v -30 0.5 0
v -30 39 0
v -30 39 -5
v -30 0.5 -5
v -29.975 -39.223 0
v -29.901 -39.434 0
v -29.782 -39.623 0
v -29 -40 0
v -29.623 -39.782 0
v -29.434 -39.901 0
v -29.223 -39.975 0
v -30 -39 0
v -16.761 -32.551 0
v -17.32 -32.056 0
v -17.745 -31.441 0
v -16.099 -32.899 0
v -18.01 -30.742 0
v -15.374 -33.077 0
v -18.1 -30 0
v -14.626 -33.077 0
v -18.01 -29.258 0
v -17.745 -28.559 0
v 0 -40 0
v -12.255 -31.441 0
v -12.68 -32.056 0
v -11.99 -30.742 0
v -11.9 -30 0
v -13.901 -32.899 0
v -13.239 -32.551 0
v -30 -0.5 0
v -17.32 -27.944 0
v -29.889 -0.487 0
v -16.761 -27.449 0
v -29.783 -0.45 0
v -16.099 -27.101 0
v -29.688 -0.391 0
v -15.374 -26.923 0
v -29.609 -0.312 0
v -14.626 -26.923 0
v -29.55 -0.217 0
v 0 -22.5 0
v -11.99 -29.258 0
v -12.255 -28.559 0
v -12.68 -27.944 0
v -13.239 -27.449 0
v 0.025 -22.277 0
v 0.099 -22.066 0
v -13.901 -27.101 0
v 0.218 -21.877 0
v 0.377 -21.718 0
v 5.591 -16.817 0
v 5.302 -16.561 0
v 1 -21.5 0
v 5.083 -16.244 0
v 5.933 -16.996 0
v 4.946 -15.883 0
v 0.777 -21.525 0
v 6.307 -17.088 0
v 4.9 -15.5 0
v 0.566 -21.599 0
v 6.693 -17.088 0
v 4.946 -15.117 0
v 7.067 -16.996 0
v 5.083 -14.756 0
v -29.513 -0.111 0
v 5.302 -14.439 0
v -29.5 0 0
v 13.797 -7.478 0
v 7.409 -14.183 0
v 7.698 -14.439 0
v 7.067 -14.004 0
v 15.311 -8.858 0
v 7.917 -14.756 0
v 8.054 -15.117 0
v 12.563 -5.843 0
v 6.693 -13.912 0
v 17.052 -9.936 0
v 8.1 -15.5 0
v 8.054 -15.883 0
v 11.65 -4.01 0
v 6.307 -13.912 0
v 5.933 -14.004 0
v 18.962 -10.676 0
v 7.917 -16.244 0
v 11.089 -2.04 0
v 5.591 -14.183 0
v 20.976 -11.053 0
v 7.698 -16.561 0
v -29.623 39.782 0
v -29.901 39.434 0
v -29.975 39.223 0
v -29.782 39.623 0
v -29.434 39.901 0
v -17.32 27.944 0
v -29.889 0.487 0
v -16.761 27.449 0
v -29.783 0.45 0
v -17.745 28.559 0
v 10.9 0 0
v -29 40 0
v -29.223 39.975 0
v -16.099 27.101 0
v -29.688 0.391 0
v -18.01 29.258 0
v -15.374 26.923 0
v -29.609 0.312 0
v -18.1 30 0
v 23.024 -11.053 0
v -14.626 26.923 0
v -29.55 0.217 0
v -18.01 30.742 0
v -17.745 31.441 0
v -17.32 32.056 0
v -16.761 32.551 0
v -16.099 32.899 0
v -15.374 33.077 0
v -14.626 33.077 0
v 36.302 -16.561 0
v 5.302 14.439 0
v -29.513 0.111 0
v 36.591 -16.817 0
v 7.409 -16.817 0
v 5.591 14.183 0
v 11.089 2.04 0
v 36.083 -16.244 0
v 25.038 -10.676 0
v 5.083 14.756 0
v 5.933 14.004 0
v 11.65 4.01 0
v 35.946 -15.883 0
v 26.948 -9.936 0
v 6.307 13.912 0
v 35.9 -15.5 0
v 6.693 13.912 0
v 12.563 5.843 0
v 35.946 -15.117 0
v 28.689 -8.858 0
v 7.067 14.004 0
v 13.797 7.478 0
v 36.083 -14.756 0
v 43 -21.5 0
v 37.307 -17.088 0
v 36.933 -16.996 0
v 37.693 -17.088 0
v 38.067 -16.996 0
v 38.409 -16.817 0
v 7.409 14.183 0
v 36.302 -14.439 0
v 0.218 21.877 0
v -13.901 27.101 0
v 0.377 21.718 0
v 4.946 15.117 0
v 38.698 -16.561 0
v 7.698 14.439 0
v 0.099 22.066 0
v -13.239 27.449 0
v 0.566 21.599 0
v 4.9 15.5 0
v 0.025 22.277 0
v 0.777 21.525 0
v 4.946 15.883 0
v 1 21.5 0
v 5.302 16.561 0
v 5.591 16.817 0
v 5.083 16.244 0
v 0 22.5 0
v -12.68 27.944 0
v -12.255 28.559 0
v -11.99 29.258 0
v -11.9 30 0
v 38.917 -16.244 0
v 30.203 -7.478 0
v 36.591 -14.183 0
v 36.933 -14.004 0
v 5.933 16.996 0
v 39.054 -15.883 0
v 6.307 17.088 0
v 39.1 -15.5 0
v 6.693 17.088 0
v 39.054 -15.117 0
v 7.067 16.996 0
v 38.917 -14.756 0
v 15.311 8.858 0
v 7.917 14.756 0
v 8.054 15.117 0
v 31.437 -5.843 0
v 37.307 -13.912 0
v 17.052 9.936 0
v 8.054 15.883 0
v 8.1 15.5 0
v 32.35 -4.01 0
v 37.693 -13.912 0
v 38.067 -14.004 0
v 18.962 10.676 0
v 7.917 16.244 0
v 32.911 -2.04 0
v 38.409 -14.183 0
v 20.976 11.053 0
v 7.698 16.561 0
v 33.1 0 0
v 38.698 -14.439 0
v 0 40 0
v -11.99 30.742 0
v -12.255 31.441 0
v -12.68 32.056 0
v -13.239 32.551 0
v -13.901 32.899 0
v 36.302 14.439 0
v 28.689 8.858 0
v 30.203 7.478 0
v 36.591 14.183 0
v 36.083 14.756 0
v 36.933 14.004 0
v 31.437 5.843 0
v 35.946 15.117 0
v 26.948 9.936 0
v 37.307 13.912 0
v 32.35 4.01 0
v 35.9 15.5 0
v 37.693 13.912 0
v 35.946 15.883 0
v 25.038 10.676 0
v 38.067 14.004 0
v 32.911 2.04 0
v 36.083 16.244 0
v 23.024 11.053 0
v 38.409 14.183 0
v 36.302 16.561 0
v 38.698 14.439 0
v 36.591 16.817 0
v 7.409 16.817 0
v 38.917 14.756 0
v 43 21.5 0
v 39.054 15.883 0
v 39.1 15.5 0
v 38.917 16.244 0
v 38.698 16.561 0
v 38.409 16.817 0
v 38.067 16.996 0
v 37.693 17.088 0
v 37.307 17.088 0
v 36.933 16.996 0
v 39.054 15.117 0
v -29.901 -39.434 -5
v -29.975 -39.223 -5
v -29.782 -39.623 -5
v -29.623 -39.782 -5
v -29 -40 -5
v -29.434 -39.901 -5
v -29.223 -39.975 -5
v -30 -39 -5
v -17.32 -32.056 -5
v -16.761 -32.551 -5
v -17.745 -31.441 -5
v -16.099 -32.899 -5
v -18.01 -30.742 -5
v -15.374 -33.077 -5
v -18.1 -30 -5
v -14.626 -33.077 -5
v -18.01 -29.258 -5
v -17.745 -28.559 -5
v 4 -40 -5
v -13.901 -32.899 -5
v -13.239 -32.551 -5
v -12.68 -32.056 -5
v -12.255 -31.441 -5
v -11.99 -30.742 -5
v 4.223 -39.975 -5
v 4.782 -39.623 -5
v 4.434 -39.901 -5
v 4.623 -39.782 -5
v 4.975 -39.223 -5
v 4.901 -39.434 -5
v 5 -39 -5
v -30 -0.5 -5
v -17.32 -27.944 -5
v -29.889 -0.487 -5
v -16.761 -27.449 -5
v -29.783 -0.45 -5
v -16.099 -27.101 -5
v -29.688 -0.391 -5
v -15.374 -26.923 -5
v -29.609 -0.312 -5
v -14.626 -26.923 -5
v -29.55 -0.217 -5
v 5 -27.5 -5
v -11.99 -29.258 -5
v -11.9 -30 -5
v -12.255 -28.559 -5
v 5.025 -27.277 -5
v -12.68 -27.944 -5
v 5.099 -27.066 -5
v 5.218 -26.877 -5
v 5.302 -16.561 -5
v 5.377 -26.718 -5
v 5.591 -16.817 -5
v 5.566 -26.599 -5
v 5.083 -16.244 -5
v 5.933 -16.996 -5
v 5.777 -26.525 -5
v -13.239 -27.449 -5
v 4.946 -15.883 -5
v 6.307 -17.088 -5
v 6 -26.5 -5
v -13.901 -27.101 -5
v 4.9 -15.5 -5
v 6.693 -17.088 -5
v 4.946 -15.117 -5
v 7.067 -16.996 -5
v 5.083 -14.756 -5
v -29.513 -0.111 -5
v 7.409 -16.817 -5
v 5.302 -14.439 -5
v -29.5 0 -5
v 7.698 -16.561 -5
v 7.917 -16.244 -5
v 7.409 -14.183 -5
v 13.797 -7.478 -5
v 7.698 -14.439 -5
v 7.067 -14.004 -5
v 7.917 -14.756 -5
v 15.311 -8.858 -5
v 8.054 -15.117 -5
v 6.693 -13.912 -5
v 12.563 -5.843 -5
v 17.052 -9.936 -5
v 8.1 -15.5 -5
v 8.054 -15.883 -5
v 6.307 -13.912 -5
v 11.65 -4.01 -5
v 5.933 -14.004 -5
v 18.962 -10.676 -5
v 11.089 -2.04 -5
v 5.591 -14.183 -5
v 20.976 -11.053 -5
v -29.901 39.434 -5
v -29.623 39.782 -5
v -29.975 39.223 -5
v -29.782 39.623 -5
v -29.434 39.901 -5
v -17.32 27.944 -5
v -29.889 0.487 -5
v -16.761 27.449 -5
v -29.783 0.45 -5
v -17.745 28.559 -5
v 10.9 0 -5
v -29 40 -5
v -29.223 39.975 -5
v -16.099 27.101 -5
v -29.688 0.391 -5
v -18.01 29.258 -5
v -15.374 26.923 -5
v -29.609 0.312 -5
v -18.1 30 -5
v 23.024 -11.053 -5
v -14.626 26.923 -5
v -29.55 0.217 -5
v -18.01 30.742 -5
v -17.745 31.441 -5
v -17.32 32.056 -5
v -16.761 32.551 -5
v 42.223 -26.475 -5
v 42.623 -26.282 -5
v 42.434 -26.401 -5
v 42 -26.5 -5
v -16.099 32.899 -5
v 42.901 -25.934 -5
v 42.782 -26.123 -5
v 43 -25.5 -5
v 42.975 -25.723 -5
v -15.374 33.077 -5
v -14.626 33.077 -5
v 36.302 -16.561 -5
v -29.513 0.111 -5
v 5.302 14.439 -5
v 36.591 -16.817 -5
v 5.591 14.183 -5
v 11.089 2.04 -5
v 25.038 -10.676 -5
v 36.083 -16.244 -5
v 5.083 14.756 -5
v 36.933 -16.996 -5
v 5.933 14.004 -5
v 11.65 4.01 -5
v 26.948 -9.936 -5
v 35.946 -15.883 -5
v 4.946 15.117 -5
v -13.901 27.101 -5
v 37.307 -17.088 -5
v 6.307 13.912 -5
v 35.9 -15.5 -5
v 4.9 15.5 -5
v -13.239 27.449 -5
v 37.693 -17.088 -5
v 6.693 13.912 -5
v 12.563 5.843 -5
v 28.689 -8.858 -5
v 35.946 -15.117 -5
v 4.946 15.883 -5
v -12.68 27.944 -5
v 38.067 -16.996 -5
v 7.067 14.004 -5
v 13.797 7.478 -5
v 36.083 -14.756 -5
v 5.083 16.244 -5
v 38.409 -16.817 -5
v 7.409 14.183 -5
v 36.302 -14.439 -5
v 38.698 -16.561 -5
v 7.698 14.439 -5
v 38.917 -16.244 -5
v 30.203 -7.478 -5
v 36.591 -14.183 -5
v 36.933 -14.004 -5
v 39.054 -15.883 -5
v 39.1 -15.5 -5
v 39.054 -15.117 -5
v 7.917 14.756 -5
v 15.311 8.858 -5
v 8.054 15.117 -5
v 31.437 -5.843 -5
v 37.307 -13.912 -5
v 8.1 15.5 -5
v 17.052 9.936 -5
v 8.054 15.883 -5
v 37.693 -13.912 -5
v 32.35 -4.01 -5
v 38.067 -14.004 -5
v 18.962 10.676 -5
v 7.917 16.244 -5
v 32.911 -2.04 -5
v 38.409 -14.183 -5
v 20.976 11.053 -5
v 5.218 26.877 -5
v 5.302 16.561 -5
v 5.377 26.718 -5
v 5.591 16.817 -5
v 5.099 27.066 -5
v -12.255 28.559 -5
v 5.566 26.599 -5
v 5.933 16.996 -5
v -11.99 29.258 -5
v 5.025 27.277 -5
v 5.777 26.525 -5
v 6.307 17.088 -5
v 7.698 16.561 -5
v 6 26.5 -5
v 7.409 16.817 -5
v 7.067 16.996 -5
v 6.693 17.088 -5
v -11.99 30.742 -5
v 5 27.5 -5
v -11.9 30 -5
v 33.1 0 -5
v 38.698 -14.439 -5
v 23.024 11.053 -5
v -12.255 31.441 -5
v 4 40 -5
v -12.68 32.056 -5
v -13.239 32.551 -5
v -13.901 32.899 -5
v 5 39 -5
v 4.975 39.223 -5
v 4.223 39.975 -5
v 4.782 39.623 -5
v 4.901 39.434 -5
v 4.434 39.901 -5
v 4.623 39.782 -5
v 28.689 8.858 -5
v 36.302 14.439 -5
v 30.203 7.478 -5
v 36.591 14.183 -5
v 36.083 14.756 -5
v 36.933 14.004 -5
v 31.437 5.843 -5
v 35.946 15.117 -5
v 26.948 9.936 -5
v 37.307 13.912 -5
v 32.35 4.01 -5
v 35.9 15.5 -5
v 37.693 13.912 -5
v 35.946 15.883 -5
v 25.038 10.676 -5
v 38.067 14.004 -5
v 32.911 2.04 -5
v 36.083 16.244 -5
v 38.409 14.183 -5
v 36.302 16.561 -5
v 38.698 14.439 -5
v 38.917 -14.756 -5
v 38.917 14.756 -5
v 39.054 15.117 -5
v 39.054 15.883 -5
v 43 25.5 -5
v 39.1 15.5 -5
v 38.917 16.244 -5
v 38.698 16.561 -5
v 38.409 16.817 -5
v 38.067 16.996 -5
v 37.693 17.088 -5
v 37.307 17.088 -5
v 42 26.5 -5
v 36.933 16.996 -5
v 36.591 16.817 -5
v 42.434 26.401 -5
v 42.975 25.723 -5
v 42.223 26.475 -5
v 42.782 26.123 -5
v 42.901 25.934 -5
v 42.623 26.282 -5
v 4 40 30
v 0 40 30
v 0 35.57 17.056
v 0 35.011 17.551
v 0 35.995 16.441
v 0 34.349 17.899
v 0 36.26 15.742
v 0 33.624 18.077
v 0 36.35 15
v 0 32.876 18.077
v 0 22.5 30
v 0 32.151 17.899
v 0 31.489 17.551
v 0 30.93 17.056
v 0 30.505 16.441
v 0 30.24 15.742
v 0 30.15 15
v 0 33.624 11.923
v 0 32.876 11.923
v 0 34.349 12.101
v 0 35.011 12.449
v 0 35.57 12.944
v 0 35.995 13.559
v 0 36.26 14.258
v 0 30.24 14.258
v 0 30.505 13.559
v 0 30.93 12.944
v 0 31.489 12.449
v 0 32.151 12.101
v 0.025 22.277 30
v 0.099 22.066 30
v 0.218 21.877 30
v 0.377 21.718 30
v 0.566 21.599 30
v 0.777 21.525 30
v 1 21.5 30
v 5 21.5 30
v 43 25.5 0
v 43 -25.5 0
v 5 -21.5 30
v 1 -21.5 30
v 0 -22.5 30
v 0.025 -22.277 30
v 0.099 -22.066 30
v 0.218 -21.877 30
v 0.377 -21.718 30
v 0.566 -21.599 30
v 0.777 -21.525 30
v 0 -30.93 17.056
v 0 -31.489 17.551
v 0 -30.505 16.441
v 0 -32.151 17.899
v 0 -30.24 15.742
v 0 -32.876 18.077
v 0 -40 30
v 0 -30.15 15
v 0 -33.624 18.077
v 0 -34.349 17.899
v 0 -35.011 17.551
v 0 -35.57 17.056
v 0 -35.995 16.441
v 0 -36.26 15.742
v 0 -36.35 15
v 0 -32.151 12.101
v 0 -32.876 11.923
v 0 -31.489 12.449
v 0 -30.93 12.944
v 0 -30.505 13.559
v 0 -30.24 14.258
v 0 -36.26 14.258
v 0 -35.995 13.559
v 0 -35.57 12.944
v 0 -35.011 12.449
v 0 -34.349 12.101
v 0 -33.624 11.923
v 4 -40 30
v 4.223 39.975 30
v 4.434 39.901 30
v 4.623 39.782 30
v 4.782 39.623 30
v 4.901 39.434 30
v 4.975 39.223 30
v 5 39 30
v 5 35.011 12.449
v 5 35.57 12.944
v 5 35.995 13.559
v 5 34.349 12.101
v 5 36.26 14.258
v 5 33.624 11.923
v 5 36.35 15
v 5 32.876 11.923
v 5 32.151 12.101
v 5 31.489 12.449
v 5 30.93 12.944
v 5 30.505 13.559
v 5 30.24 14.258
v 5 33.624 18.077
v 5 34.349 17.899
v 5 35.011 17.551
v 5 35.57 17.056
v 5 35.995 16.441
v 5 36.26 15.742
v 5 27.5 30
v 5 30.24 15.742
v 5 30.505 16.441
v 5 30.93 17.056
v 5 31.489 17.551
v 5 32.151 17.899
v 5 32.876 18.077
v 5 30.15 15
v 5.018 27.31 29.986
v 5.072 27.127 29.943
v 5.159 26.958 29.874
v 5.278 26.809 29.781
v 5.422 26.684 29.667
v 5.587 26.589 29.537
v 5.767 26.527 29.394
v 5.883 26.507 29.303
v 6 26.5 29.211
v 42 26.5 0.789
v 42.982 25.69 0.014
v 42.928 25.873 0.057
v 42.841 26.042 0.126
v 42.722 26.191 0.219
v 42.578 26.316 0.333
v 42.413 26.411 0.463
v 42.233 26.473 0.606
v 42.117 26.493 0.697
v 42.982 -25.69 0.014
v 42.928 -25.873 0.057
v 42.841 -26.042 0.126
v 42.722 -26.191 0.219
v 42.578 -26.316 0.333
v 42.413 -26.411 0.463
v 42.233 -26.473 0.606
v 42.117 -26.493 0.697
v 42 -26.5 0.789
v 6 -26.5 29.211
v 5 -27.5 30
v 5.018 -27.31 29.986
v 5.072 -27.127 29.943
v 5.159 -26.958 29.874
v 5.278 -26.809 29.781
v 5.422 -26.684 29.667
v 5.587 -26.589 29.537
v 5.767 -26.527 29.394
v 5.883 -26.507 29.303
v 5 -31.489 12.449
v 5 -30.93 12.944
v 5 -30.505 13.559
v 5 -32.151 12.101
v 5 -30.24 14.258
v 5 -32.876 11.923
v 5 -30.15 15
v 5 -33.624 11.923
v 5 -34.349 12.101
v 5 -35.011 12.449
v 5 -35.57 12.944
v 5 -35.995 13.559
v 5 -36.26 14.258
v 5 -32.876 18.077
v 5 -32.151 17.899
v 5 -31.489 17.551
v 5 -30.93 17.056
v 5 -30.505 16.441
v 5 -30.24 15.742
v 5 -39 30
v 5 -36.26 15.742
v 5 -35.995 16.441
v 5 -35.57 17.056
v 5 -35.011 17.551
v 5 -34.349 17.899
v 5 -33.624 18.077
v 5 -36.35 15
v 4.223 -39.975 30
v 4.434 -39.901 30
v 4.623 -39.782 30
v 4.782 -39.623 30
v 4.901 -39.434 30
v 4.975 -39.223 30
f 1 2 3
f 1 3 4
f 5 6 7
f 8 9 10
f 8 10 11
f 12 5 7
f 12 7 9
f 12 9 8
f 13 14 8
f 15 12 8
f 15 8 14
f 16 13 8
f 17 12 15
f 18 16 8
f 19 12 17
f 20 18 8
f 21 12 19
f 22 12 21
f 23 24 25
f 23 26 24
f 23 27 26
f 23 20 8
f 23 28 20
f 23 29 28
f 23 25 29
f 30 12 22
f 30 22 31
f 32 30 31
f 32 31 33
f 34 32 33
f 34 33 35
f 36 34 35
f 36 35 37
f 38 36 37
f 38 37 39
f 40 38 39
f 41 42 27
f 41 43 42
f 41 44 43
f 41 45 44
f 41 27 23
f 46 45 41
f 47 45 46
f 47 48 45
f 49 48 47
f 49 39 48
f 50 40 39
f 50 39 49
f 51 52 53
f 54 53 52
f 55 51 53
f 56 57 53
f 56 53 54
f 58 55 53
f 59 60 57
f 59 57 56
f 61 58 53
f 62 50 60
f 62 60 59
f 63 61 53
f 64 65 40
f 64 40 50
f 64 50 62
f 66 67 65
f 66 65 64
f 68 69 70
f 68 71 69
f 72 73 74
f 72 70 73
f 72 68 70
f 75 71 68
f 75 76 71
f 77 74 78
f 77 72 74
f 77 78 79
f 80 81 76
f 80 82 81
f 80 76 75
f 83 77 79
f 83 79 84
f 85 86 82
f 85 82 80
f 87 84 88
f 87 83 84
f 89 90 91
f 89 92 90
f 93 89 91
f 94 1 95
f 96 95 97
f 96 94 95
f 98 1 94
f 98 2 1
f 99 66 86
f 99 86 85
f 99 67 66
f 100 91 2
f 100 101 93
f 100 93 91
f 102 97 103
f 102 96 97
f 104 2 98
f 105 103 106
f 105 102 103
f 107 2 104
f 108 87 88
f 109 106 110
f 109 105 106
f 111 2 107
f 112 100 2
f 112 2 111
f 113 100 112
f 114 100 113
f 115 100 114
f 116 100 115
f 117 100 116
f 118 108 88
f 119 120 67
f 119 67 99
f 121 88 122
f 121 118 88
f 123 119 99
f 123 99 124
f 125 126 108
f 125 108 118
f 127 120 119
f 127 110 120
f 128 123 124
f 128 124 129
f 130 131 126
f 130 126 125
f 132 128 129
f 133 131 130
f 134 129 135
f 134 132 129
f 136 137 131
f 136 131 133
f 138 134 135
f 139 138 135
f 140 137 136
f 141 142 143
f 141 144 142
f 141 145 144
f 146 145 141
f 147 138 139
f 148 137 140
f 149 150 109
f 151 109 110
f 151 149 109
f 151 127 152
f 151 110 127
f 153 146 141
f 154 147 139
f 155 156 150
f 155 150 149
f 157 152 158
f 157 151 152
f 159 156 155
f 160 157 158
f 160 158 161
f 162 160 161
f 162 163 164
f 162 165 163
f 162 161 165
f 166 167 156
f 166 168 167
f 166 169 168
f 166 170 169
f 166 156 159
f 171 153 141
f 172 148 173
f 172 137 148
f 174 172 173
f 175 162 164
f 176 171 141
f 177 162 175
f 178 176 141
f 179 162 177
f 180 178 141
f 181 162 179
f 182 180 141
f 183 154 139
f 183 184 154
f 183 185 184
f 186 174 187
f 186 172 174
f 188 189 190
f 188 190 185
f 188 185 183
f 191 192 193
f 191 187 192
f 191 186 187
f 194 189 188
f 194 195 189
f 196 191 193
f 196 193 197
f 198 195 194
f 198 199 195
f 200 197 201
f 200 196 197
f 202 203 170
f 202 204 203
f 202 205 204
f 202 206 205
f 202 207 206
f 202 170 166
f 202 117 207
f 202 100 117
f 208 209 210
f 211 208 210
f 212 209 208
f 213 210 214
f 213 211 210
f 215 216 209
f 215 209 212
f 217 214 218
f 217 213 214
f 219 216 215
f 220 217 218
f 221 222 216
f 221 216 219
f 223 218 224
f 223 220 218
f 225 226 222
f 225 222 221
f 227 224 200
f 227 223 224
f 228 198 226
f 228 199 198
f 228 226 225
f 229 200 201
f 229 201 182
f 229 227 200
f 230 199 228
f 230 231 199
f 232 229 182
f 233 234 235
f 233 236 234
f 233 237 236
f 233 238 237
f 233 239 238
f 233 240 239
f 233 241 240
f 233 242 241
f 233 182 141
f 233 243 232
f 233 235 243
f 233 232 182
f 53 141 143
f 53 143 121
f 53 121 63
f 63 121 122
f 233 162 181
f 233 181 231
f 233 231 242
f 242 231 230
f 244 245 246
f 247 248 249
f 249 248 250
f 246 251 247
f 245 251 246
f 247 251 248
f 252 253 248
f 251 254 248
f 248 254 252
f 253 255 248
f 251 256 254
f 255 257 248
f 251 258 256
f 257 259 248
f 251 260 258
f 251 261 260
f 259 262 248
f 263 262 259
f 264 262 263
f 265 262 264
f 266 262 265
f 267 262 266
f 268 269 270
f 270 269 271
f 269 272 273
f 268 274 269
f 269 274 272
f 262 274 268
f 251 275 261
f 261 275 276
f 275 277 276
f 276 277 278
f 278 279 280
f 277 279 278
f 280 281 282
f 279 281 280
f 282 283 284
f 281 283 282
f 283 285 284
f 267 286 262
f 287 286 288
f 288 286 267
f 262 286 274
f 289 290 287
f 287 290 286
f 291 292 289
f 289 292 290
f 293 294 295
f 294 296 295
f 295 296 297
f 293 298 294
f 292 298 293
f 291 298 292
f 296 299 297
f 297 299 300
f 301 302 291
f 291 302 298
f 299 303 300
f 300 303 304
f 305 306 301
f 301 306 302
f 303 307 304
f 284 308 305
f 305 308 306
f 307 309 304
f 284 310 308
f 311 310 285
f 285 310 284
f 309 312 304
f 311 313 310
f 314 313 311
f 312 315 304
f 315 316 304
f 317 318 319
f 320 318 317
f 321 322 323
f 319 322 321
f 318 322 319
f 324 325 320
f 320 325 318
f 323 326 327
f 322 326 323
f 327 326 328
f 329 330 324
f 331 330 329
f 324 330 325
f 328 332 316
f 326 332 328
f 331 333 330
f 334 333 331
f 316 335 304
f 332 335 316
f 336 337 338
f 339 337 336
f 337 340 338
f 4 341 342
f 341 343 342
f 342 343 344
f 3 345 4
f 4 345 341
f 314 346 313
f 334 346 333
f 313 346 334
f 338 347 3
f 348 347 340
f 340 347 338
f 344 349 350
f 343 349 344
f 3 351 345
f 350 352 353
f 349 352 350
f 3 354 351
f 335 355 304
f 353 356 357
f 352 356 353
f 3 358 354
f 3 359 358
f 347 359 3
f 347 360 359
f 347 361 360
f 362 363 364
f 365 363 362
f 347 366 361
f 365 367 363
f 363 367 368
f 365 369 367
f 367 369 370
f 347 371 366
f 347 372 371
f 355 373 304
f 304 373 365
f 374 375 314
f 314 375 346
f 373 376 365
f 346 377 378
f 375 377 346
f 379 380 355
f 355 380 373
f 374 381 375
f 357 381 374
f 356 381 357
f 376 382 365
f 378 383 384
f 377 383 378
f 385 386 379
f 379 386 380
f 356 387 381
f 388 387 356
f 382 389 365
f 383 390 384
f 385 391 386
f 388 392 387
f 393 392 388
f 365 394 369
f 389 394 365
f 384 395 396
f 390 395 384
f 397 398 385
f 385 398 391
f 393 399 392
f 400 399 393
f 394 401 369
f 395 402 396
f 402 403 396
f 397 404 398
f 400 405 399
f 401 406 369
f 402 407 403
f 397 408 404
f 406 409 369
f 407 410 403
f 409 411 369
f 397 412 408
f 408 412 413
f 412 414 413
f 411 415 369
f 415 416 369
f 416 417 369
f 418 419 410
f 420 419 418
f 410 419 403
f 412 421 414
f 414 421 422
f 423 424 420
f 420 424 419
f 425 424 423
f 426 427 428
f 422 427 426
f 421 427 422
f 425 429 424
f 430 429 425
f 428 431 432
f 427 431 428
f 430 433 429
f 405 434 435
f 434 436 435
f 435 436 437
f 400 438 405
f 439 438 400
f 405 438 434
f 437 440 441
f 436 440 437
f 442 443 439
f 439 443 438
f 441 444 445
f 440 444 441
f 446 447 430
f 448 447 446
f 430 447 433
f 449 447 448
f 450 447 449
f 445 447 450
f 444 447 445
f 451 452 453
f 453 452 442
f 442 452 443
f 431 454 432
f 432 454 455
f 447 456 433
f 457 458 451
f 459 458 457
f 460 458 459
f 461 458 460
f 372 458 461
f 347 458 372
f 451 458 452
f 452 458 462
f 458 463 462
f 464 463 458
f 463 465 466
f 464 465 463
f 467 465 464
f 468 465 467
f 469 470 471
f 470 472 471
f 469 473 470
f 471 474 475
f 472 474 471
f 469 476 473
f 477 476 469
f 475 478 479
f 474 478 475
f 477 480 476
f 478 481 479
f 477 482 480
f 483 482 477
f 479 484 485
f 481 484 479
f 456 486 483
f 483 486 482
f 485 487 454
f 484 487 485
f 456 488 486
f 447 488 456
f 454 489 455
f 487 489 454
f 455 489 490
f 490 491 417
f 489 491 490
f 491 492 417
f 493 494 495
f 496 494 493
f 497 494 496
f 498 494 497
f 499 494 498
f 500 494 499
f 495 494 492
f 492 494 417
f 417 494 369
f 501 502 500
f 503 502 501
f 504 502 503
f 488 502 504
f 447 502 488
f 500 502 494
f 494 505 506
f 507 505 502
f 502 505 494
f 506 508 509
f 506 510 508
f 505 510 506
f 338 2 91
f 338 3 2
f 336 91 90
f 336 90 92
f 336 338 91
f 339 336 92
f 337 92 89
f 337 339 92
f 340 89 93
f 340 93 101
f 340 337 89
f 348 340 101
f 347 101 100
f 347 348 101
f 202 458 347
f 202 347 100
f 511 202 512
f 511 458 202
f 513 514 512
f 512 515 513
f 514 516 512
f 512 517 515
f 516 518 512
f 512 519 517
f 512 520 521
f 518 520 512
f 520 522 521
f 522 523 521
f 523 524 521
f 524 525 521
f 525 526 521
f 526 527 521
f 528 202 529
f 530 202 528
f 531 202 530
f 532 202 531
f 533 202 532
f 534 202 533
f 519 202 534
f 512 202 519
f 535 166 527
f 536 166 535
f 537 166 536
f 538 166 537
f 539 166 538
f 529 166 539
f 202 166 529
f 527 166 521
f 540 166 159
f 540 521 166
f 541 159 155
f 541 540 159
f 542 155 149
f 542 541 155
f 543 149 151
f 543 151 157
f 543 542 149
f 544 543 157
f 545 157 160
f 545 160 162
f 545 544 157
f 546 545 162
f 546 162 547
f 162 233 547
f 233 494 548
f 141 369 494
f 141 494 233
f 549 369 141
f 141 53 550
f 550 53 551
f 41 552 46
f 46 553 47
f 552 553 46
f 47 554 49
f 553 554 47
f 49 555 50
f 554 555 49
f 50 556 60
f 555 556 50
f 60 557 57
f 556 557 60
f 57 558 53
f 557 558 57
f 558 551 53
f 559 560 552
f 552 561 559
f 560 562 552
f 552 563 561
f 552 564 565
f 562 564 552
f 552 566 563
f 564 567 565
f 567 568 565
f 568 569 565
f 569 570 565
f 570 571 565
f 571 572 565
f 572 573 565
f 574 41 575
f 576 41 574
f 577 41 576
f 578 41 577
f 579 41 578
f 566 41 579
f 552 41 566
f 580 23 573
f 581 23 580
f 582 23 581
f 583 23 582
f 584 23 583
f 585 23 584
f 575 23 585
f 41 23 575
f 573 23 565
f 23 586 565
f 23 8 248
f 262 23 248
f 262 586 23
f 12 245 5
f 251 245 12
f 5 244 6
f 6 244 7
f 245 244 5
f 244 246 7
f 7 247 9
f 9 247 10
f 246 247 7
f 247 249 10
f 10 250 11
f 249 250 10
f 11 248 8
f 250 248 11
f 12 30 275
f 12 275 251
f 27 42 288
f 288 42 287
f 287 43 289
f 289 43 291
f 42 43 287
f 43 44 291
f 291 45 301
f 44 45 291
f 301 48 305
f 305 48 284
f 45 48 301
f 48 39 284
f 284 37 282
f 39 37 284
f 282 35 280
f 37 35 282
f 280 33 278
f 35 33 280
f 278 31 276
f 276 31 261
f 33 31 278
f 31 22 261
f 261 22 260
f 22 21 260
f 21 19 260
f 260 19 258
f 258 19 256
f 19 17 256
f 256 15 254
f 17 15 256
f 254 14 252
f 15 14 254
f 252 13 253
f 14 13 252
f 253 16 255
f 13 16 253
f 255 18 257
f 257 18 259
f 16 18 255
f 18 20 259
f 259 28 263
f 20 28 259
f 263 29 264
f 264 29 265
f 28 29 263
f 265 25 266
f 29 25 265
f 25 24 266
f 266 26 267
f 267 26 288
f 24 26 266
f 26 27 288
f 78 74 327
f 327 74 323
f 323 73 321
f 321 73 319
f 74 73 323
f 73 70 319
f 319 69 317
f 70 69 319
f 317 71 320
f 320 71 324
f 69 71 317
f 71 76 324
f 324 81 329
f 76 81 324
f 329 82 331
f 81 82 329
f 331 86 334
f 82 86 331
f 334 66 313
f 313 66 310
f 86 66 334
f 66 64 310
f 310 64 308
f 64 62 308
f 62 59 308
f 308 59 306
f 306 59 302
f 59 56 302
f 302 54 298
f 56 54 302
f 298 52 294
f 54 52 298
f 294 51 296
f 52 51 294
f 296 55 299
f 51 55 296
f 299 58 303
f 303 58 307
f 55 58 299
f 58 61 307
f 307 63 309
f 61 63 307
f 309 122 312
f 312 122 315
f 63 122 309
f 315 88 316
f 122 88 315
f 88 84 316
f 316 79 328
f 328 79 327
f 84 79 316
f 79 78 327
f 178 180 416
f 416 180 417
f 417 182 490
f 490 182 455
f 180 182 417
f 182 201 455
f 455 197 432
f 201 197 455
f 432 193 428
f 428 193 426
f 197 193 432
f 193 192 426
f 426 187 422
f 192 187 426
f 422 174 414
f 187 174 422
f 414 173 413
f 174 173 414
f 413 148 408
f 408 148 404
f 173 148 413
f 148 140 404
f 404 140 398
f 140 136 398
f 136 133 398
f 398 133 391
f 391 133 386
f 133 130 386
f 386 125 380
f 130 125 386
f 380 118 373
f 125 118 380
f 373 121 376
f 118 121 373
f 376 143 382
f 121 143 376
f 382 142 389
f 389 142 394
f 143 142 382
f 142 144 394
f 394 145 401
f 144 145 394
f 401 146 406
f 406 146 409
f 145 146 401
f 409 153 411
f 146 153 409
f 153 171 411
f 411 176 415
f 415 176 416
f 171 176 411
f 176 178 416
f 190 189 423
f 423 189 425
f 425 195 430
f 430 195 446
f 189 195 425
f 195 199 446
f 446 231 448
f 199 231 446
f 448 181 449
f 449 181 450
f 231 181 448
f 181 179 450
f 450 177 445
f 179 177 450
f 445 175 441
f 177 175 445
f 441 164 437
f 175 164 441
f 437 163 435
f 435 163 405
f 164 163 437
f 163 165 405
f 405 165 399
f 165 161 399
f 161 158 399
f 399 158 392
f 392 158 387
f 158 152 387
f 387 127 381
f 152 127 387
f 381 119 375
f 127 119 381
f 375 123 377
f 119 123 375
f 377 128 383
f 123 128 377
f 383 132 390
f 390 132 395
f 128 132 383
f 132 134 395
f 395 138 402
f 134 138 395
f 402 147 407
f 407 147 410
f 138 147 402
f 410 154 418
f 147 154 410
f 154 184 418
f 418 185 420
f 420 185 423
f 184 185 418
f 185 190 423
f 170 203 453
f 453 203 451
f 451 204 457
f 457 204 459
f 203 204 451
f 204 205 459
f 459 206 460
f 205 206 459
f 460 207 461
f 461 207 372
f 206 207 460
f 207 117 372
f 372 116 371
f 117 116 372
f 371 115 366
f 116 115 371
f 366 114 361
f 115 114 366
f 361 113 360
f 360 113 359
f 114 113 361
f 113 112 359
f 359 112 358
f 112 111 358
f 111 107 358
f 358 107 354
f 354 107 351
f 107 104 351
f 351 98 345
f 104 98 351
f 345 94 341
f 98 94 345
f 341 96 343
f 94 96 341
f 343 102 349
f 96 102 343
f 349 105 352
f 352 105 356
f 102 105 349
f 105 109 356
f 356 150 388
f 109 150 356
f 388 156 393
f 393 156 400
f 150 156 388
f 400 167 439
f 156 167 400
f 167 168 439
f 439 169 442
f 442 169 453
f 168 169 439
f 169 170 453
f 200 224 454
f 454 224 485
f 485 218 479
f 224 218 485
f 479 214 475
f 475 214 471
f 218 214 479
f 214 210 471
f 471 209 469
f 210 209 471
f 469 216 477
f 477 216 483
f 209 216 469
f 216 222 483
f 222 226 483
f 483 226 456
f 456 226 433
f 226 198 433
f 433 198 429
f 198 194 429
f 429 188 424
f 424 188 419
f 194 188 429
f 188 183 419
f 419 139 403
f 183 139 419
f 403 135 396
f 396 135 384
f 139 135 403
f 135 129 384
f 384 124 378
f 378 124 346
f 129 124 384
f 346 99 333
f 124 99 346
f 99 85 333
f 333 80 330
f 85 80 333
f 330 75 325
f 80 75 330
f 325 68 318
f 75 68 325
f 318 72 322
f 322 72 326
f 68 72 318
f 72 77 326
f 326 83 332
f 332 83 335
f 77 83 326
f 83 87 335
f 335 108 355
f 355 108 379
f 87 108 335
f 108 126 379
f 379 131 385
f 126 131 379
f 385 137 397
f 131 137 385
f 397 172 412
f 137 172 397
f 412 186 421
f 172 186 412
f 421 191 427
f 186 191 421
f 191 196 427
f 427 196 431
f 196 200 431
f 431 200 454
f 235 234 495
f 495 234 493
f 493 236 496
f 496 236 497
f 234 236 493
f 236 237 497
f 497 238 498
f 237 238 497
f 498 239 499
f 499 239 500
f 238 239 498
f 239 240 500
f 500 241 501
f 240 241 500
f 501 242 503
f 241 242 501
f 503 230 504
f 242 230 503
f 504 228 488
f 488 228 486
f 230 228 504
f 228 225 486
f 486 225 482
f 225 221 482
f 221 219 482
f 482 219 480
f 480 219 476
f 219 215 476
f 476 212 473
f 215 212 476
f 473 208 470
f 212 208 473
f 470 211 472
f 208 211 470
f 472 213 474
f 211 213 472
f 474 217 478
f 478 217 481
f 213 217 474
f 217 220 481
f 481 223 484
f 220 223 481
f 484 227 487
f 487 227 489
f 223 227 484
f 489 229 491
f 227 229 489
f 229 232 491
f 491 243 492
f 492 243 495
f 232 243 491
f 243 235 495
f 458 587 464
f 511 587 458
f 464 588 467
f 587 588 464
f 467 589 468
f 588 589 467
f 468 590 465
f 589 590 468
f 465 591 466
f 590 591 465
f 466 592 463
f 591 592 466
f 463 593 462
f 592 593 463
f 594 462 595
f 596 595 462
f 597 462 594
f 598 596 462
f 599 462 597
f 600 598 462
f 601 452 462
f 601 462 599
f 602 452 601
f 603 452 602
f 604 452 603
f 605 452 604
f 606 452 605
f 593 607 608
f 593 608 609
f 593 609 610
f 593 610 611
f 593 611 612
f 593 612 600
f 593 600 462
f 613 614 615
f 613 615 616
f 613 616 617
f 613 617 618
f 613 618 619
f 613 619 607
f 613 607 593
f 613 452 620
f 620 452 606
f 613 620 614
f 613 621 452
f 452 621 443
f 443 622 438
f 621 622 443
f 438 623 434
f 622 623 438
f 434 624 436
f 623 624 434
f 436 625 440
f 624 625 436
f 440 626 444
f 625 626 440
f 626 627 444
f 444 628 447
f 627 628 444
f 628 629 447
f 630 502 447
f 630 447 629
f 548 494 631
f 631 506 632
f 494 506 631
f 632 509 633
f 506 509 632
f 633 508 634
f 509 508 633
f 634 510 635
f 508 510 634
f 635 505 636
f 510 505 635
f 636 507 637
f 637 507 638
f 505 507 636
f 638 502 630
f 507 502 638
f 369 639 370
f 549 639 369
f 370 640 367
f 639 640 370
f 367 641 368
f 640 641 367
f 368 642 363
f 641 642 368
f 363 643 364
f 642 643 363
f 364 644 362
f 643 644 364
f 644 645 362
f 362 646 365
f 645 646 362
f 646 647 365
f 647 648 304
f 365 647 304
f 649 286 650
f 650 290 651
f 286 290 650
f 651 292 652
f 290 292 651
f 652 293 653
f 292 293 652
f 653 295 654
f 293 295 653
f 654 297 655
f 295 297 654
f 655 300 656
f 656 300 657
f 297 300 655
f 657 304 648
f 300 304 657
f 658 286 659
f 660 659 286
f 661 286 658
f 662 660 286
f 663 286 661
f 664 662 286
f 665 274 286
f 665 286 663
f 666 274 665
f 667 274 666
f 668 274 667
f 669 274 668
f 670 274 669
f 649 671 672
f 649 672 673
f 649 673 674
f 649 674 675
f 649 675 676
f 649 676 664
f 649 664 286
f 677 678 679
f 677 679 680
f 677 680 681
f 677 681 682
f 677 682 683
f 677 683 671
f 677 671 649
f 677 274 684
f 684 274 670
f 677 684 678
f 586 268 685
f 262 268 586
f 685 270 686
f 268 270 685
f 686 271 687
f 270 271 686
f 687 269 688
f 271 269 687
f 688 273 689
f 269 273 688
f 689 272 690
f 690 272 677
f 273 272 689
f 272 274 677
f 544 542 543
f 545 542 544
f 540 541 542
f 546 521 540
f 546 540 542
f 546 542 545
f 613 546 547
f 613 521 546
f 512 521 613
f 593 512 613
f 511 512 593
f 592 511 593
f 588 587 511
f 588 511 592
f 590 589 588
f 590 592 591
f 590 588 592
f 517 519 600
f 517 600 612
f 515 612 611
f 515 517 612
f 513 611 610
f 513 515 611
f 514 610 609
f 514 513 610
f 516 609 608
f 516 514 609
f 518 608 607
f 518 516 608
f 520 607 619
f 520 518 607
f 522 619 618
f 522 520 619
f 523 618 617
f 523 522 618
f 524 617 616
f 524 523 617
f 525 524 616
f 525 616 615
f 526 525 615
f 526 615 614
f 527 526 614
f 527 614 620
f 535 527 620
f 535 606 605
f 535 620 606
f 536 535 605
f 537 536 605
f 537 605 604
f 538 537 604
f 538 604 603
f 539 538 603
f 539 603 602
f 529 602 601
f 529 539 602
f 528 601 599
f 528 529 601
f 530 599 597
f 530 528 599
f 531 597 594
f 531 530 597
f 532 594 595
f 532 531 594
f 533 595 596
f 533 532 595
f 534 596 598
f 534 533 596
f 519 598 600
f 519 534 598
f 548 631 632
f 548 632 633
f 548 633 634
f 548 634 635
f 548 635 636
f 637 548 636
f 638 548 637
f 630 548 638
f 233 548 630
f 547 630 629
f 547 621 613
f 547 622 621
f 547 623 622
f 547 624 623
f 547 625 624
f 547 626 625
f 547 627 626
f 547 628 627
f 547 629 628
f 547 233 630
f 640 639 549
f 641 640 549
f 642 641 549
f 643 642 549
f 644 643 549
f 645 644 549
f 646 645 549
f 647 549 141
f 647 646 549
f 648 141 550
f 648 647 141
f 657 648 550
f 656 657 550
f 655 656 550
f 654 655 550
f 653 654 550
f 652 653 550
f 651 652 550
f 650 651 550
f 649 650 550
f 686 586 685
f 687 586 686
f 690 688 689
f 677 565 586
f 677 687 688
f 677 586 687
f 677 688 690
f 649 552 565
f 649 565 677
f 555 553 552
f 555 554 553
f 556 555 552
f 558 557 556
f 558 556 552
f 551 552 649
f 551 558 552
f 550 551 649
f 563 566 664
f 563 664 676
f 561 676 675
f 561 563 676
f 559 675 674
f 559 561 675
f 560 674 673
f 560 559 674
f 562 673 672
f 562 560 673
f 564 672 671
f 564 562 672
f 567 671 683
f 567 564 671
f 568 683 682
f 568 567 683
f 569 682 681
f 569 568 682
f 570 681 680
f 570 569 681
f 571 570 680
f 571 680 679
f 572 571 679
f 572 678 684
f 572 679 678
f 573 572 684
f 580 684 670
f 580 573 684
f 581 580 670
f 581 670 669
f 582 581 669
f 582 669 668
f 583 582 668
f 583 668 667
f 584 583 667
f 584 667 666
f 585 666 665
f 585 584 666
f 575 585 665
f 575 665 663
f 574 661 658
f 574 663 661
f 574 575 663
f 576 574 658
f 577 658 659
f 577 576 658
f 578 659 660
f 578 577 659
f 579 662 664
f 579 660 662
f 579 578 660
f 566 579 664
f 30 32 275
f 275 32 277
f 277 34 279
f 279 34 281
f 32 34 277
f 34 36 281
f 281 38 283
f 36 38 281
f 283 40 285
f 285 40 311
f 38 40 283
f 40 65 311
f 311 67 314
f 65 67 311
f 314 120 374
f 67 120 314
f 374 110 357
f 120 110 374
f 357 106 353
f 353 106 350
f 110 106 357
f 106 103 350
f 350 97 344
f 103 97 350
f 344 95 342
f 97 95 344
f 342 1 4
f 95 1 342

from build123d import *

# Parameters (mm, degrees)
SKETCH_R             = 11.1
SKETCH_R_2           = 3.1
SKETCH_R_3           = 1.6
PAD_DEPTH            = 5
PAD001_DEPTH         = 30
SKETCH002_R          = 3.1
POCKET_DEPTH         = 43.001
POCKET001_DEPTH      = 40.001
POCKET001_DEPTH_BACK = -40.001
FILLET_R             = 1
SKETCH004_R          = 0.5
POCKET002_DEPTH      = 5.001
POCKET002_DEPTH_BACK = -30.001


with BuildPart() as part:
    # Sketch → Pad (new body)
    with BuildSketch(Plane.XY):
        Polygon((-30, 40), (-30, -40), (5, -40), (5, -26.5), (43, -26.5), (43, 26.5), (5, 26.5), (5, 40), align=None)
        with Locations((22, 0)):
            Circle(SKETCH_R, mode=Mode.SUBTRACT)
        with Locations((-15, 30)):
            Circle(SKETCH_R_2, mode=Mode.SUBTRACT)
        with Locations((-15, -30)):
            Circle(SKETCH_R_2, mode=Mode.SUBTRACT)
        with Locations((6.5, -15.5)):
            Circle(SKETCH_R_3, mode=Mode.SUBTRACT)
        with Locations((37.5, -15.5)):
            Circle(SKETCH_R_3, mode=Mode.SUBTRACT)
        with Locations((37.5, 15.5)):
            Circle(SKETCH_R_3, mode=Mode.SUBTRACT)
        with Locations((6.5, 15.5)):
            Circle(SKETCH_R_3, mode=Mode.SUBTRACT)
    extrude(amount=-PAD_DEPTH)

    # Sketch001 → Pad001 (join)
    with BuildSketch(Plane.XY):
        Polygon((0, -40), (5, -40), (5, -26.5), (43, -26.5), (43, -21.5), (0, -21.5), align=None)
        Polygon((0, 21.5), (43, 21.5), (43, 26.5), (5, 26.5), (5, 40), (0, 40), align=None)
    extrude(amount=PAD001_DEPTH)

    # Sketch002 → Pocket (cut, through all)
    with BuildSketch(Plane.YZ):
        with Locations((-33.25, 15)):
            Circle(SKETCH002_R)
        with Locations((33.25, 15)):
            Circle(SKETCH002_R)
    extrude(amount=POCKET_DEPTH, mode=Mode.SUBTRACT)

    # Sketch003 → Pocket001 (cut, two sides)
    with BuildSketch(Plane.XZ) as pocket001_sk:
        Polygon((5, 30), (43, 30), (43, 0), align=None)
    extrude(amount=-POCKET001_DEPTH, mode=Mode.SUBTRACT)
    extrude(pocket001_sk.sketch, amount=-POCKET001_DEPTH_BACK, mode=Mode.SUBTRACT)

    # Fillet
    fillet_edges = [part.edges().sort_by_distance(p)[0] for p in [
        (5, -26.5, 12.5),
        (5, 26.5, 12.5),
        (43, 26.5, -2.5),
        (43, -26.5, -2.5),
        (0, -21.5, 15),
        (0, 21.5, 15),
        (5, -40, 12.5),
        (5, 40, 12.5),
        (-30, 40, -2.5),
        (-30, -40, -2.5),
    ]]
    fillet(fillet_edges, radius=FILLET_R)

    # Sketch004 (on Face2 of Fillet) → Pocket002 (cut, two sides)
    with BuildSketch(Plane.XY) as pocket002_sk:
        with Locations((-30, 0)):
            Circle(SKETCH004_R)
    extrude(amount=-POCKET002_DEPTH, mode=Mode.SUBTRACT)
    extrude(pocket002_sk.sketch, amount=-POCKET002_DEPTH_BACK, mode=Mode.SUBTRACT)


solid = part.part
